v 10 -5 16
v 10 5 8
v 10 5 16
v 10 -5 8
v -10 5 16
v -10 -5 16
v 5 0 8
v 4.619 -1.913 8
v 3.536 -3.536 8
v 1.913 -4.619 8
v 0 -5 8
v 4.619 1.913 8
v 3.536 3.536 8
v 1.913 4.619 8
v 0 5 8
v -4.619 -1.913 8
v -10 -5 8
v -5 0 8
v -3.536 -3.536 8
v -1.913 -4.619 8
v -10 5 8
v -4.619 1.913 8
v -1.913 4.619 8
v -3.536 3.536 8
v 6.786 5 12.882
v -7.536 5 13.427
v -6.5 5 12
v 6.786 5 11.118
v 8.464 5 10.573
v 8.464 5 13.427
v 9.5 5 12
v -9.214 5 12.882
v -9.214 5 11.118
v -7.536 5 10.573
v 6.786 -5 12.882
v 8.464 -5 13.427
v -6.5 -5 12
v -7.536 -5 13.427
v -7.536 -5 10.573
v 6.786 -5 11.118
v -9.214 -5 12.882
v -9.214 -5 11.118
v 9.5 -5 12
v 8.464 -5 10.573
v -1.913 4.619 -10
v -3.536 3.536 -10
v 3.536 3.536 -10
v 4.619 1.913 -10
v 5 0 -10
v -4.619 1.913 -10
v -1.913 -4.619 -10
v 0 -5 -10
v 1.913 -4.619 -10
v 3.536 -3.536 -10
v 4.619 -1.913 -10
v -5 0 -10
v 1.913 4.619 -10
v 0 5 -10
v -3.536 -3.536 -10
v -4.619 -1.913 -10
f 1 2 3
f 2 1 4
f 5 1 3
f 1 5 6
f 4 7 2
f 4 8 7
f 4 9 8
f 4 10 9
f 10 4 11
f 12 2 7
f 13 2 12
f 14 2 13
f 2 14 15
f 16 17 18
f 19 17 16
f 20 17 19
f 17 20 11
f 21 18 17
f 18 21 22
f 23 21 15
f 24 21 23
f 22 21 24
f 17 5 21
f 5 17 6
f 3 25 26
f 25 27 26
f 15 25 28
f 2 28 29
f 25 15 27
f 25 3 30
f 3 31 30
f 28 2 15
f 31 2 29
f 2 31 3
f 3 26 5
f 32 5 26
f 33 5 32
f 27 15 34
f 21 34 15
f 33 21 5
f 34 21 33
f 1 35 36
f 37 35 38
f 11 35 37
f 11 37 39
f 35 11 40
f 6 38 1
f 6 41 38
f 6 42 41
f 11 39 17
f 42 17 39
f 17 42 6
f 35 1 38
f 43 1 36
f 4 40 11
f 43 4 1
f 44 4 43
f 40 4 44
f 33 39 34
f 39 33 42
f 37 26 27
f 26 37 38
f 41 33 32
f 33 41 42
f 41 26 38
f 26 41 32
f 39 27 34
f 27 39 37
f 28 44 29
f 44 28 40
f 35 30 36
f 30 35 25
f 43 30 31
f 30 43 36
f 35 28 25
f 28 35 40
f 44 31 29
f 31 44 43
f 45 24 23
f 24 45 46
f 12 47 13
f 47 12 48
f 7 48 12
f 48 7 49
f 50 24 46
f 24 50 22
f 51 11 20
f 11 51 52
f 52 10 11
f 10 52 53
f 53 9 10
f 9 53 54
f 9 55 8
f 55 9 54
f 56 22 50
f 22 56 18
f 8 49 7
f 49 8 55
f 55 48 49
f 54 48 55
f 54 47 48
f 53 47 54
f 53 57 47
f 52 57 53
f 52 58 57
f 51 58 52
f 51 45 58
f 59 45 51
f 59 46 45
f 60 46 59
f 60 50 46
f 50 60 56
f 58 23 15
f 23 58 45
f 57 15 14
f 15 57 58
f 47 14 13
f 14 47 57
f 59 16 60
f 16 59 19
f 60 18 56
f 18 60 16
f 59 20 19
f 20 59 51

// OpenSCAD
module main_part() {
    union() {
        // Cylinder base
        translate([0, 0, 0]) cylinder(h=20, r=5, center=true);

        // Upper block with holes
        translate([0, 0, 12]) {
            difference() {
                // Create main block
                cube([20, 10, 8], center=true);

                // Cutting holes
                translate([-8, 0, 0])
                    rotate([90, 0, 0])
                    cylinder(h=12, r=1.5, center=true);

                translate([8, 0, 0])
                    rotate([90, 0, 0])
                    cylinder(h=12, r=1.5, center=true);
            }
        }
    }
}

main_part();
